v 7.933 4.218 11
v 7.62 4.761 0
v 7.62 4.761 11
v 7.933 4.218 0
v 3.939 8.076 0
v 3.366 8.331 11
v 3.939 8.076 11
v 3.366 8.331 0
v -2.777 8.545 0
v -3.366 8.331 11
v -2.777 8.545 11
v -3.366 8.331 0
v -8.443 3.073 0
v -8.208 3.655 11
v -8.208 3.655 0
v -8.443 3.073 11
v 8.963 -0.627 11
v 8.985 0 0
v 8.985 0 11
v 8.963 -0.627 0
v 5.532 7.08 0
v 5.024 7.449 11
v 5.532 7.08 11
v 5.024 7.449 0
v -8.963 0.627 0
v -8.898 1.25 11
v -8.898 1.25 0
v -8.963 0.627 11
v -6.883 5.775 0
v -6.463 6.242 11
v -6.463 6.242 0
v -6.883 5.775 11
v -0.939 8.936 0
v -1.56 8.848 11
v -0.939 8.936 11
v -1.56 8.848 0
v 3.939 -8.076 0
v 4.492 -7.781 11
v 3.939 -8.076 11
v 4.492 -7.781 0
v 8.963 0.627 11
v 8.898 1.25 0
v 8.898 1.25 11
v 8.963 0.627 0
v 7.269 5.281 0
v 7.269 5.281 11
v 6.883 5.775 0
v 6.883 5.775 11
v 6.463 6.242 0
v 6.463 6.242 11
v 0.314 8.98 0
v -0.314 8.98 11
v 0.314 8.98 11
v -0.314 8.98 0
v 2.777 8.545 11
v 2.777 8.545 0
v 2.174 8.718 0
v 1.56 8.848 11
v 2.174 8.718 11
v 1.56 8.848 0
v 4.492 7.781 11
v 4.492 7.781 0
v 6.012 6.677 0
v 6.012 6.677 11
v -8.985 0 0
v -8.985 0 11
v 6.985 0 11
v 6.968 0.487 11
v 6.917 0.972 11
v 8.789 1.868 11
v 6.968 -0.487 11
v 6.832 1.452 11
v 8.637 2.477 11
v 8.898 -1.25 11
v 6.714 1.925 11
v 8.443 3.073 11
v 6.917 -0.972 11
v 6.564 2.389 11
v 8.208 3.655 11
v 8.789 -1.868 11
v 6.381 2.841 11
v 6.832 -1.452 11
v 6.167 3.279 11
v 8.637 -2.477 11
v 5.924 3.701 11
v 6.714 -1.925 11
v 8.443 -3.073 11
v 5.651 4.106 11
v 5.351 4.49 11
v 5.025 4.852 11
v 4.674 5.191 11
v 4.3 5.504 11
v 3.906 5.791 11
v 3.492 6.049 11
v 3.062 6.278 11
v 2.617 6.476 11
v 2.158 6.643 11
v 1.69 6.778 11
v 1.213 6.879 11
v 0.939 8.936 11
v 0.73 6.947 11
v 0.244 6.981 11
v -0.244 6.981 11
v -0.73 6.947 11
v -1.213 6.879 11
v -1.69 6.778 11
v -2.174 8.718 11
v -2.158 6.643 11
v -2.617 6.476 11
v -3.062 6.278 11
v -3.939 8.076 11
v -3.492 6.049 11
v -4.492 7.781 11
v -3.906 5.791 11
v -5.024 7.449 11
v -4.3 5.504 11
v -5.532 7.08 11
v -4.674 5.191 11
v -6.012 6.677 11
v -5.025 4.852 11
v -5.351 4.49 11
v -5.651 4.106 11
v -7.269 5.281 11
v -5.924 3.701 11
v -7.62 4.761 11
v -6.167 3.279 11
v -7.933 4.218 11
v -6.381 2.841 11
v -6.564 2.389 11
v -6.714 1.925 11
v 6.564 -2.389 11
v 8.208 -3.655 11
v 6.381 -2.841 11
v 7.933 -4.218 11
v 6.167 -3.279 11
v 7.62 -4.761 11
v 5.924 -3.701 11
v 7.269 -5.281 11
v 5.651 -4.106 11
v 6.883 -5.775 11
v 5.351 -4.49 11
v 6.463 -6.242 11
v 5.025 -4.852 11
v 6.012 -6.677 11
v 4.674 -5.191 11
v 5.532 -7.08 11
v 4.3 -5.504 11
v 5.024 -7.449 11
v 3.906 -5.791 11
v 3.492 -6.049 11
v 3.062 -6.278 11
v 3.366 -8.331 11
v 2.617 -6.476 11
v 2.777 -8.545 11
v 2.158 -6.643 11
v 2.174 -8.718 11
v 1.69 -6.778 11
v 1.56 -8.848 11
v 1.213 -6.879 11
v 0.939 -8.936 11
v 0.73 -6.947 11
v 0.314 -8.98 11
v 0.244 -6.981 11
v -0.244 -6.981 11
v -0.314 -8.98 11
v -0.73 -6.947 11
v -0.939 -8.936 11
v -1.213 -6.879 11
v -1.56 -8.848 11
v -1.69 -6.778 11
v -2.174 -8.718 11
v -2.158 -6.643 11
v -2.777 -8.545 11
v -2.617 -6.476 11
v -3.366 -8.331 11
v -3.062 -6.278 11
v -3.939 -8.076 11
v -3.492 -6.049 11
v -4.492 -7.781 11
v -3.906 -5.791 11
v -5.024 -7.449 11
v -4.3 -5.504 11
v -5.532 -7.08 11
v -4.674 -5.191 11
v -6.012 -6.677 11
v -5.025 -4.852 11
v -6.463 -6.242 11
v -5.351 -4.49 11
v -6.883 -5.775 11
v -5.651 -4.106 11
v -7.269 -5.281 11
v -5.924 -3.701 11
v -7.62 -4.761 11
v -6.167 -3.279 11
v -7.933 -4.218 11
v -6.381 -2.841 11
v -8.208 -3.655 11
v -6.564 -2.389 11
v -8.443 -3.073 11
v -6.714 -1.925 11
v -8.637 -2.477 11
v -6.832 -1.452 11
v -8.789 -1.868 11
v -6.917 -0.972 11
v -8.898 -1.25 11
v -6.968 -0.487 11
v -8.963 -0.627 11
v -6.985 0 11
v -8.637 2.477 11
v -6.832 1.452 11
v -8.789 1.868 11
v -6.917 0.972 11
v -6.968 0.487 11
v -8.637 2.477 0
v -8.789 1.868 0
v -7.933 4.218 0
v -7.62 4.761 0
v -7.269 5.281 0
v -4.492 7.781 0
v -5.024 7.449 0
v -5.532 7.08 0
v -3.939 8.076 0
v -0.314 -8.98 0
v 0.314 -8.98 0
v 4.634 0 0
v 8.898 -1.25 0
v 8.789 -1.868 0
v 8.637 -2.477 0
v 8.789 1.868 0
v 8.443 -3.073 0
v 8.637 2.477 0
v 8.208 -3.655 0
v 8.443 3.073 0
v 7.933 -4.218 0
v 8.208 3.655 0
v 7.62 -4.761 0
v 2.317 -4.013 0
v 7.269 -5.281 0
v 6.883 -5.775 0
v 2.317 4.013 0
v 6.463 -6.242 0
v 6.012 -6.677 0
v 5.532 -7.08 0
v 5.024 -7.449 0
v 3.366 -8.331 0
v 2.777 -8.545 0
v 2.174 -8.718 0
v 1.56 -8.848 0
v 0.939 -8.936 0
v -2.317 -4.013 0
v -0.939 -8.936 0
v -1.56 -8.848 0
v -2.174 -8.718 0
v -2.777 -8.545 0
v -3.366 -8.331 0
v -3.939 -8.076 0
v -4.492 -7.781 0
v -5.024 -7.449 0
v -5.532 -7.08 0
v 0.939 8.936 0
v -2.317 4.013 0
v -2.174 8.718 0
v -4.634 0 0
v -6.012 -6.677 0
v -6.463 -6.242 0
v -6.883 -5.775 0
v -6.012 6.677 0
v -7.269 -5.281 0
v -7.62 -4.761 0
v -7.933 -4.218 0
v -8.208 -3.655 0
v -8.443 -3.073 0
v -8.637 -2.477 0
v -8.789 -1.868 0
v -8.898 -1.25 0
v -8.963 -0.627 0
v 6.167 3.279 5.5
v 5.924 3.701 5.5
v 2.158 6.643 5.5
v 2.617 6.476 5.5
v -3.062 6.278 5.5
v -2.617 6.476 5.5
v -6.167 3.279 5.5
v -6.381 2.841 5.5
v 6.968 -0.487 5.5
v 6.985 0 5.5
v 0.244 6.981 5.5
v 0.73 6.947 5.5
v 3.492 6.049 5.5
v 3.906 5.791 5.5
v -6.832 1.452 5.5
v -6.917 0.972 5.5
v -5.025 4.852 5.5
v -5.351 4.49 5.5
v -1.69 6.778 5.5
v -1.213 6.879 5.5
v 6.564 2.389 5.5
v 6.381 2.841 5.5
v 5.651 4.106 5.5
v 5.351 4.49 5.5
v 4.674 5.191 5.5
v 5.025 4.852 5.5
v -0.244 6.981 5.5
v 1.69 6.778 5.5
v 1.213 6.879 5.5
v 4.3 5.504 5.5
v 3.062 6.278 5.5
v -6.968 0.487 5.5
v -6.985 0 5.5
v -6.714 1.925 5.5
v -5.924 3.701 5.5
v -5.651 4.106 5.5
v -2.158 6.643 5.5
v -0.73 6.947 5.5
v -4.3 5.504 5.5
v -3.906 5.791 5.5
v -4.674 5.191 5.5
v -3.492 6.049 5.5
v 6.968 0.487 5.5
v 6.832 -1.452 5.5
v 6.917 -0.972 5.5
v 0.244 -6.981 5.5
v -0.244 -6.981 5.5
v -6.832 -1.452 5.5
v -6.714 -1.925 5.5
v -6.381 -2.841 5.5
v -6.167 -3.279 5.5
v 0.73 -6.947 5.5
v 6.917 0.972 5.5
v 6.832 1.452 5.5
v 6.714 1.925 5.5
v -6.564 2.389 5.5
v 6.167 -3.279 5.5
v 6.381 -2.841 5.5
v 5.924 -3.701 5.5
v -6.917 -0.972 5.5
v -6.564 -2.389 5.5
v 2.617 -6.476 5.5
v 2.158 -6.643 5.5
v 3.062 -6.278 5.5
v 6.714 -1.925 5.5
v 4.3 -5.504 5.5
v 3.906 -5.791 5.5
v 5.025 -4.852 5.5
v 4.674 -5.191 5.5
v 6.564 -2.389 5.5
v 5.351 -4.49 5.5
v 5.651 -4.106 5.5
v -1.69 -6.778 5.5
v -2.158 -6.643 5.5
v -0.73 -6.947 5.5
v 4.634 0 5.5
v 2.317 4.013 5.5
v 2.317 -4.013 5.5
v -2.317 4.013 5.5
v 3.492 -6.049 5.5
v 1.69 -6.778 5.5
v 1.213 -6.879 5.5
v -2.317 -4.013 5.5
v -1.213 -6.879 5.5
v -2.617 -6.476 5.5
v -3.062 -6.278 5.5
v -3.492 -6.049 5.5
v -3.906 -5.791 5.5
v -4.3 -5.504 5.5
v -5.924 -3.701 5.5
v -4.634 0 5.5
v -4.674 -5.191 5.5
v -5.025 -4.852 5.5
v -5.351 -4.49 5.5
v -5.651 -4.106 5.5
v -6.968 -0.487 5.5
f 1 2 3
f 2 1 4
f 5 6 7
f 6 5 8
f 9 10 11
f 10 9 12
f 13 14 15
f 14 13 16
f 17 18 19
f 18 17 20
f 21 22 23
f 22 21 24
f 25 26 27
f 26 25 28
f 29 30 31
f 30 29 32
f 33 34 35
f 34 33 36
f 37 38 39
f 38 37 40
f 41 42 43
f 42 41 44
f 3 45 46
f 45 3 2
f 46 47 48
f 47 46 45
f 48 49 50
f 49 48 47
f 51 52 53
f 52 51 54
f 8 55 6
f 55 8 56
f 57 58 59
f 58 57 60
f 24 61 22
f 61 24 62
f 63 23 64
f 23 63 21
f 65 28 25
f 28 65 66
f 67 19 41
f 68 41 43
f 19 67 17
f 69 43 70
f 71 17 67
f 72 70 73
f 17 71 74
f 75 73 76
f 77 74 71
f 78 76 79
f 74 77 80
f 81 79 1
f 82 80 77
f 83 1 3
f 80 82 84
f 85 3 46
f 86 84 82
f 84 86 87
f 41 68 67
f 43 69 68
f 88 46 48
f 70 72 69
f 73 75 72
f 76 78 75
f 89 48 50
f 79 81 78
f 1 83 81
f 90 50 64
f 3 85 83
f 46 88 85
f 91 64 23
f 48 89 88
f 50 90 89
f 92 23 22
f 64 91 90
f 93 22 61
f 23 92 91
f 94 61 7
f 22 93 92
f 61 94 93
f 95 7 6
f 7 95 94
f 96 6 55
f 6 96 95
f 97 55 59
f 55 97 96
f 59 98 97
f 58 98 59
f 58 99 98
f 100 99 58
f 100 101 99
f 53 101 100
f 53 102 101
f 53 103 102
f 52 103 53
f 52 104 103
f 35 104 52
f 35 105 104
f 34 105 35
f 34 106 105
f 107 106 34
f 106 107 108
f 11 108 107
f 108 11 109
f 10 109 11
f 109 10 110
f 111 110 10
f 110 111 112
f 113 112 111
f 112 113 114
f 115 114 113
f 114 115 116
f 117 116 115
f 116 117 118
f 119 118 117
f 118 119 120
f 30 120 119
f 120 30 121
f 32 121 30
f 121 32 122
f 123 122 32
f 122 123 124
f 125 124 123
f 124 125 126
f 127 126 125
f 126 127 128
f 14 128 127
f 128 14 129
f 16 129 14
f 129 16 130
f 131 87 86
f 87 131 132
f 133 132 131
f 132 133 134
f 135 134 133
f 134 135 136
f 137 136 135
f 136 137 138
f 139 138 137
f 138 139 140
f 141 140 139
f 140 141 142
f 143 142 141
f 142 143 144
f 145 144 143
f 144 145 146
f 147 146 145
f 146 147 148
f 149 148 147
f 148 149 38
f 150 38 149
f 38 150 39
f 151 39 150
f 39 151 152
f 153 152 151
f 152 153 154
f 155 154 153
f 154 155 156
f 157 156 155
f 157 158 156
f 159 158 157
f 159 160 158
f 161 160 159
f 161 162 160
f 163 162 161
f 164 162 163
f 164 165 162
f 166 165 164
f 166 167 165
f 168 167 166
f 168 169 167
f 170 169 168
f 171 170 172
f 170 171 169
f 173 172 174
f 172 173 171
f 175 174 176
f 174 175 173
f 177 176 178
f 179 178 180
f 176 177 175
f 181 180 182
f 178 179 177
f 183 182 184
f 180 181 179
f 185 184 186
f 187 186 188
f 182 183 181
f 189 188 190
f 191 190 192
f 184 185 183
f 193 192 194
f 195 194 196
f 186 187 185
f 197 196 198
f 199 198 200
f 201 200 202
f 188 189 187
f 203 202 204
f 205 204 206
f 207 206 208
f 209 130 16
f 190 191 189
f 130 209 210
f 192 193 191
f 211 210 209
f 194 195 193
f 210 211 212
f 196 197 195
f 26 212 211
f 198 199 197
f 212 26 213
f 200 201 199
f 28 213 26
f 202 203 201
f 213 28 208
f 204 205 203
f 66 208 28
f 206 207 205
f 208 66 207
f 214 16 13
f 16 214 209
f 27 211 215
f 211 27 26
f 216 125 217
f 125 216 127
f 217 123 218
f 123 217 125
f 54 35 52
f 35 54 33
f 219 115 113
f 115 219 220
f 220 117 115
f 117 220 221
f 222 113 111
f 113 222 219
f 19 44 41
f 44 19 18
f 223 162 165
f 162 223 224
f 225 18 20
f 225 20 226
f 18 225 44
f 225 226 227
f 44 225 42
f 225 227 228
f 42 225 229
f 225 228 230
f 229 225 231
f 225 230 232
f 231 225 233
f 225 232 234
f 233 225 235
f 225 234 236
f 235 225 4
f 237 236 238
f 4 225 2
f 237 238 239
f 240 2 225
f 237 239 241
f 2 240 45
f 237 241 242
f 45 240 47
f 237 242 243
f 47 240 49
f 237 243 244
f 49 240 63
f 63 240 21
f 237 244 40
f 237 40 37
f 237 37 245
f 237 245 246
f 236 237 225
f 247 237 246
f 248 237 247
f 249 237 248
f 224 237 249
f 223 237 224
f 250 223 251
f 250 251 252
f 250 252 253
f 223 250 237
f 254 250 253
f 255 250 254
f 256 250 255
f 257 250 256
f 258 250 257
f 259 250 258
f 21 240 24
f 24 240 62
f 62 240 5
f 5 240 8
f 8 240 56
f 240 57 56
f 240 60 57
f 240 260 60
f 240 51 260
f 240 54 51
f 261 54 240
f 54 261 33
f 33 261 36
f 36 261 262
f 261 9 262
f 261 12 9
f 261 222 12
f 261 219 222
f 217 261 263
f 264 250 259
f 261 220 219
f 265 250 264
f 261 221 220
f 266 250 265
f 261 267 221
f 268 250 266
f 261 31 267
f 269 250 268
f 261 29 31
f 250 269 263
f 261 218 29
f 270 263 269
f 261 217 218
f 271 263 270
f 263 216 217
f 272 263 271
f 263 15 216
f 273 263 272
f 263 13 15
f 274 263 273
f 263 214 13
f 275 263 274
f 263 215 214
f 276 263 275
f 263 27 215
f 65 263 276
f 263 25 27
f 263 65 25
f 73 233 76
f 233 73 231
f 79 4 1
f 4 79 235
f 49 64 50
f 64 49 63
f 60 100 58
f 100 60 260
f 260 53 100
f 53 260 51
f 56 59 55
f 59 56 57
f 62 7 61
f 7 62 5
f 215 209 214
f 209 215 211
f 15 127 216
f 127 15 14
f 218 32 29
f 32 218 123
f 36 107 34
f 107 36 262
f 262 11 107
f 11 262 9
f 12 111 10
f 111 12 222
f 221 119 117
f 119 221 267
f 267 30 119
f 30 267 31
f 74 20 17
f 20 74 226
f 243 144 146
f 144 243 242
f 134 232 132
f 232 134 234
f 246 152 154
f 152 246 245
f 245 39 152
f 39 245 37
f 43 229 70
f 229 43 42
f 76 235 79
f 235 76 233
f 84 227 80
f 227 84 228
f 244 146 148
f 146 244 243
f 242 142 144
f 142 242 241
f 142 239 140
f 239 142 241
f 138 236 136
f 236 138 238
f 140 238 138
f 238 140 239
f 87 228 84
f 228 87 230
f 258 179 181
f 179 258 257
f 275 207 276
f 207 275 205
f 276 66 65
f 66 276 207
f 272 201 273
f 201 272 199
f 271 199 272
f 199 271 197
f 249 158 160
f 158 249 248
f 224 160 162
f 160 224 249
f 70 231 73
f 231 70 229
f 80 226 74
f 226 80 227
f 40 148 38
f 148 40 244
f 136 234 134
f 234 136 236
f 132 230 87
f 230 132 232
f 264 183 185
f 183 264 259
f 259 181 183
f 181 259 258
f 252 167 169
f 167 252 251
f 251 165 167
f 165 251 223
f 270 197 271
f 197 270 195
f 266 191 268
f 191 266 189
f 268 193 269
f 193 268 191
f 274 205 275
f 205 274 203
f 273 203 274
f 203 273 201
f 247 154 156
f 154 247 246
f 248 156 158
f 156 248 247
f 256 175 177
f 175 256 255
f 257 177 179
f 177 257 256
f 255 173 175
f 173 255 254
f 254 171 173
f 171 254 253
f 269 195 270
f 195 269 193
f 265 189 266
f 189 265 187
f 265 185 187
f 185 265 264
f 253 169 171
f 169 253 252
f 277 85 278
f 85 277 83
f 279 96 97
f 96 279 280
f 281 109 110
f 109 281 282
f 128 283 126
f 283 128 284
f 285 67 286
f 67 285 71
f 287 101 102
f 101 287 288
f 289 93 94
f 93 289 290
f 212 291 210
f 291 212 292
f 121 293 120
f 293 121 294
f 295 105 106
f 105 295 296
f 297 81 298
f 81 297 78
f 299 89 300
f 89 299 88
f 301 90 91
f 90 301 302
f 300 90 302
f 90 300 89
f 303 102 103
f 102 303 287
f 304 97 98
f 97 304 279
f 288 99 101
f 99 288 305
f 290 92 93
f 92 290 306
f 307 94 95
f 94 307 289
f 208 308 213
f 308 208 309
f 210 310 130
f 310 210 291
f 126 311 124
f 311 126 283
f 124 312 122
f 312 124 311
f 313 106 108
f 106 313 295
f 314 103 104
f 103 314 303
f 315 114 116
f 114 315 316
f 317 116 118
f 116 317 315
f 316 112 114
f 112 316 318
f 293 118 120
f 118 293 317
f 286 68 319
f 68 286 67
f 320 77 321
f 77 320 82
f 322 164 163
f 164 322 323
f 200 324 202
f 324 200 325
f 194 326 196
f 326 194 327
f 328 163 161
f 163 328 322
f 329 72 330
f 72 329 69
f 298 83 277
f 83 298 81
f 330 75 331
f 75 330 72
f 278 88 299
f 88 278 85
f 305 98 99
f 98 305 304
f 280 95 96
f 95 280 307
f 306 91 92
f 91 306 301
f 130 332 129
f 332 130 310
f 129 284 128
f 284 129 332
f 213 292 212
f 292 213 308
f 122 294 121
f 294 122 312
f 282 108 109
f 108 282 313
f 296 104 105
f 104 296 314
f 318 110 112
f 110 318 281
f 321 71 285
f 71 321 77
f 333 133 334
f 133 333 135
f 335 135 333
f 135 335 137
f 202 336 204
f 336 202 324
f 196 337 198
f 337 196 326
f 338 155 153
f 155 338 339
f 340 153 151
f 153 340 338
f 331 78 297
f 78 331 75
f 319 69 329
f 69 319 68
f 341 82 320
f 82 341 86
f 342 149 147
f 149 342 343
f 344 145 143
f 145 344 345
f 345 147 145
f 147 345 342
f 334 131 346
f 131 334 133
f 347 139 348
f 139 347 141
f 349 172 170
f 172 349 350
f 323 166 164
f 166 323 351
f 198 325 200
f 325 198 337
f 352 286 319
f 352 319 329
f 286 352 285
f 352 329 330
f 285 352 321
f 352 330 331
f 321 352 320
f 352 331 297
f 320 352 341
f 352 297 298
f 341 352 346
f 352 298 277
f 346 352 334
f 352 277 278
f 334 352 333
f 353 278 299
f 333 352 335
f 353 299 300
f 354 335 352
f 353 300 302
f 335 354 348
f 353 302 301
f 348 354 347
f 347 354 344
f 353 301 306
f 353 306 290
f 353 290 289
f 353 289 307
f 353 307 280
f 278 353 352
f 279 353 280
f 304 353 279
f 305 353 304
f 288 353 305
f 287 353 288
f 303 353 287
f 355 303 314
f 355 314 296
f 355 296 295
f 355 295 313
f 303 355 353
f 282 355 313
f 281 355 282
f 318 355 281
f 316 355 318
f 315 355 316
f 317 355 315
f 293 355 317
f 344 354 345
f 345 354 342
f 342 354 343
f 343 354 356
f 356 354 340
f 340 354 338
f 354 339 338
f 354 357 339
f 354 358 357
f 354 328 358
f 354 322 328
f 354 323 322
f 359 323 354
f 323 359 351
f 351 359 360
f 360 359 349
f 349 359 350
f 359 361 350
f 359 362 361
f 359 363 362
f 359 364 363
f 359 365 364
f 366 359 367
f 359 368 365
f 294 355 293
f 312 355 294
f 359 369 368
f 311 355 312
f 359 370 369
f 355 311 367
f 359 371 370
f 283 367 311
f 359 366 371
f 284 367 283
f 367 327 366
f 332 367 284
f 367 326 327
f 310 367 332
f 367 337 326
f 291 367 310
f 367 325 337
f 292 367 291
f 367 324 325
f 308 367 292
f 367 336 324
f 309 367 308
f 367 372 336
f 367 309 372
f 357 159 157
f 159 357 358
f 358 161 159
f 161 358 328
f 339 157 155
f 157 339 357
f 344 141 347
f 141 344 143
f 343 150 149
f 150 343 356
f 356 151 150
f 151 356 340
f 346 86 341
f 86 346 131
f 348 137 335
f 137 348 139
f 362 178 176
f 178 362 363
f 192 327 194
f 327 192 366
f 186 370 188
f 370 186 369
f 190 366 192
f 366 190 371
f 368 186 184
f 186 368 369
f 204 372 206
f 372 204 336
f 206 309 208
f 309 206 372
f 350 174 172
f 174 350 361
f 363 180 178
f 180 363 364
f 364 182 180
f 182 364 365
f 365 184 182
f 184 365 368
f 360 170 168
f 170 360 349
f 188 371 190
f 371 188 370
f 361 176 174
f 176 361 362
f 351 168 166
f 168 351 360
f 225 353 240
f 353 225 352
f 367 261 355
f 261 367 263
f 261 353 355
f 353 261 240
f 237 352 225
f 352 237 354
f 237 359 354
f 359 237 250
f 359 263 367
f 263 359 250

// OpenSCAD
$fn=80;
// ID of spring keeper
id=0.55*25.4;
//wall thickness
tw=2;
// height of springkeep
hw=4;
//base of spring kepper
tb=1.5;
// hole for the screw to go through
rm4free=5.25/2;
//size of nut
rm4_ac=8.2/2/cos(360/12)-0.1;
// height of the nut
hm4=5.5;

	difference(){
	cylinder($fn=90,h=hw+tb+hm4,r=id/2+tw,center=false);
    translate([0,0,hm4])  cylinder($fn=90, h=hw+hm4, r=id/2, center=false);
//    translate ([0,0,0]) cylinder($fn=90, h=hw+tb+hm4, r1=rm4free, center=false);
	translate([0,0,0]) cylinder(hm4,rm4_ac,rm4_ac,$fn=6);
}
